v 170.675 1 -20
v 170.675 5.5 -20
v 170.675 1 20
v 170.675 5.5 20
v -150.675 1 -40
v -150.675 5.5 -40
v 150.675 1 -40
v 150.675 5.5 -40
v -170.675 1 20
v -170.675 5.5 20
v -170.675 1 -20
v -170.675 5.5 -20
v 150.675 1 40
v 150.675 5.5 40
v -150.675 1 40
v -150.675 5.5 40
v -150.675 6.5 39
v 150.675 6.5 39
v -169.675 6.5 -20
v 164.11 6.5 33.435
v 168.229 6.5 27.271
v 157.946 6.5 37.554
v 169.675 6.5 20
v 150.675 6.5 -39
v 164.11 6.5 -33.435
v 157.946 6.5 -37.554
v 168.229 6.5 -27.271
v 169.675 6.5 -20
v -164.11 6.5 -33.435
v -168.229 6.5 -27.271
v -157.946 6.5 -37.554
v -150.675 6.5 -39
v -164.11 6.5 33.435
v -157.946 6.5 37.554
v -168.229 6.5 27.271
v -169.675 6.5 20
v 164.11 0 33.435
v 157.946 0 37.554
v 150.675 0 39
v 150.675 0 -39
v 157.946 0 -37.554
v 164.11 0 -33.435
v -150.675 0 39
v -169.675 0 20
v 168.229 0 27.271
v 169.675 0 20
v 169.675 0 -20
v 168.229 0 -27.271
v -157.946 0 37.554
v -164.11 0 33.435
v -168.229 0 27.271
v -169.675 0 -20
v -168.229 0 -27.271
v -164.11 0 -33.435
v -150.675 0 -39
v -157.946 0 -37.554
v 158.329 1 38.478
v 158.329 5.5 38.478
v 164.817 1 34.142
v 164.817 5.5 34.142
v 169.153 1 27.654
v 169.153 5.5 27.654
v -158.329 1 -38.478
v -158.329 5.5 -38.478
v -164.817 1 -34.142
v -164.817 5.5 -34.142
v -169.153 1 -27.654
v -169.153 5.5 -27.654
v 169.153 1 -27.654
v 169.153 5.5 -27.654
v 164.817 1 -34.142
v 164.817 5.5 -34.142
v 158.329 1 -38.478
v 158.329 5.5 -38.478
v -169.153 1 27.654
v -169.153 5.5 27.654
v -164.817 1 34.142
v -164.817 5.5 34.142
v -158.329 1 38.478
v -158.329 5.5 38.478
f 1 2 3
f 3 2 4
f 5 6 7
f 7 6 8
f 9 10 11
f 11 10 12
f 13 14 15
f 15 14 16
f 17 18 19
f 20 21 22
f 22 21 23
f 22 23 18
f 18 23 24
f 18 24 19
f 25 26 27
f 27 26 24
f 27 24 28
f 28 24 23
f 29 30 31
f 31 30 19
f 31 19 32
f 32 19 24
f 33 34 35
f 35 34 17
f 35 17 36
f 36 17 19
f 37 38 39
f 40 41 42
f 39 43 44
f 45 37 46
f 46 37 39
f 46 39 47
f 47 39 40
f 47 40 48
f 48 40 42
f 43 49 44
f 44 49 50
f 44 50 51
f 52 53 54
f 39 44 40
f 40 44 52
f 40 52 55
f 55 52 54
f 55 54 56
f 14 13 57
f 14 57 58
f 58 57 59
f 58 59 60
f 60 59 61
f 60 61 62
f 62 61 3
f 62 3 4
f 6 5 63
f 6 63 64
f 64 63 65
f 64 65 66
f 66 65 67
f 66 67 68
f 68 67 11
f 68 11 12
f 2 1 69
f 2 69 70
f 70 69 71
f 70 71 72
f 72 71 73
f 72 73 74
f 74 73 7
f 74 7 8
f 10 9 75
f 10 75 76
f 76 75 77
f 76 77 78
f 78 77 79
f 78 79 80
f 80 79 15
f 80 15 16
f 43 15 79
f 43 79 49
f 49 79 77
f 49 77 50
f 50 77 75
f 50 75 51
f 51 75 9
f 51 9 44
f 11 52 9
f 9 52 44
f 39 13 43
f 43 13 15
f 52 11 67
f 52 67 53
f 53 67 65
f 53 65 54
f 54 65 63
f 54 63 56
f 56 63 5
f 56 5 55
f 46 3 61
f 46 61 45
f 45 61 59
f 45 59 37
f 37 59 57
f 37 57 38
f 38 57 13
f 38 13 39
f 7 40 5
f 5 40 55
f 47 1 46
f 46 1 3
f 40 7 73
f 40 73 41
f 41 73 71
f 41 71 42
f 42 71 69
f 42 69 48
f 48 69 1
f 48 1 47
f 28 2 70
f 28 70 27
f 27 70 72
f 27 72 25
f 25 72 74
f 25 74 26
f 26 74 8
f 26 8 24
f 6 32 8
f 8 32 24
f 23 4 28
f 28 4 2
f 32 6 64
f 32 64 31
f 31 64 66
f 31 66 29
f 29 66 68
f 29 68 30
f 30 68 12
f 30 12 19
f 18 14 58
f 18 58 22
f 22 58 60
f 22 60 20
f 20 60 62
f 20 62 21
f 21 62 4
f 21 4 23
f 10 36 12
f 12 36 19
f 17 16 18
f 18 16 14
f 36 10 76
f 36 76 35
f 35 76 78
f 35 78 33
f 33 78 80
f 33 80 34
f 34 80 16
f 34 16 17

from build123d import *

# Parameters (mm, degrees)
SKETCH1_W           = 341.35
SKETCH1_H           = 80
BOSS_EXTRUDE1_DEPTH = 6.5
FILLET1_R           = 20
CHAMFER1_SIZE       = 1


with BuildPart() as part:
    # Sketch1 → Boss-Extrude1 (new body)
    with BuildSketch(Plane(origin=(0, 0, 0), x_dir=(1, 0, 0), z_dir=(0, 1, 0))):
        Rectangle(SKETCH1_W, SKETCH1_H)
    extrude(amount=BOSS_EXTRUDE1_DEPTH)

    # Fillet1
    fillet1_edges = [part.edges().sort_by_distance(p)[0] for p in [
        (170.675, 3.25, 40),
        (-170.675, 3.25, 40),
        (-170.675, 3.25, -40),
        (170.675, 3.25, -40),
    ]]
    fillet(fillet1_edges, radius=FILLET1_R)

    # Chamfer1
    chamfer1_edges = [part.edges().sort_by_distance(p)[0] for p in [
        (170.675, 0, 0),
        (170.675, 6.5, 0),
        (0, 0, 40),
        (-170.675, 0, 0),
        (0, 0, -40),
        (-164.817135624, 0, 34.142135624),
        (164.817135624, 0, -34.142135624),
        (-164.817135624, 0, -34.142135624),
        (164.817135624, 0, 34.142135624),
        (0, 6.5, 40),
        (0, 6.5, -40),
        (-170.675, 6.5, 0),
        (-164.817135624, 6.5, 34.142135624),
        (164.817135624, 6.5, -34.142135624),
        (-164.817135624, 6.5, -34.142135624),
        (164.817135624, 6.5, 34.142135624),
    ]]
    chamfer(chamfer1_edges, length=CHAMFER1_SIZE)


solid = part.part
